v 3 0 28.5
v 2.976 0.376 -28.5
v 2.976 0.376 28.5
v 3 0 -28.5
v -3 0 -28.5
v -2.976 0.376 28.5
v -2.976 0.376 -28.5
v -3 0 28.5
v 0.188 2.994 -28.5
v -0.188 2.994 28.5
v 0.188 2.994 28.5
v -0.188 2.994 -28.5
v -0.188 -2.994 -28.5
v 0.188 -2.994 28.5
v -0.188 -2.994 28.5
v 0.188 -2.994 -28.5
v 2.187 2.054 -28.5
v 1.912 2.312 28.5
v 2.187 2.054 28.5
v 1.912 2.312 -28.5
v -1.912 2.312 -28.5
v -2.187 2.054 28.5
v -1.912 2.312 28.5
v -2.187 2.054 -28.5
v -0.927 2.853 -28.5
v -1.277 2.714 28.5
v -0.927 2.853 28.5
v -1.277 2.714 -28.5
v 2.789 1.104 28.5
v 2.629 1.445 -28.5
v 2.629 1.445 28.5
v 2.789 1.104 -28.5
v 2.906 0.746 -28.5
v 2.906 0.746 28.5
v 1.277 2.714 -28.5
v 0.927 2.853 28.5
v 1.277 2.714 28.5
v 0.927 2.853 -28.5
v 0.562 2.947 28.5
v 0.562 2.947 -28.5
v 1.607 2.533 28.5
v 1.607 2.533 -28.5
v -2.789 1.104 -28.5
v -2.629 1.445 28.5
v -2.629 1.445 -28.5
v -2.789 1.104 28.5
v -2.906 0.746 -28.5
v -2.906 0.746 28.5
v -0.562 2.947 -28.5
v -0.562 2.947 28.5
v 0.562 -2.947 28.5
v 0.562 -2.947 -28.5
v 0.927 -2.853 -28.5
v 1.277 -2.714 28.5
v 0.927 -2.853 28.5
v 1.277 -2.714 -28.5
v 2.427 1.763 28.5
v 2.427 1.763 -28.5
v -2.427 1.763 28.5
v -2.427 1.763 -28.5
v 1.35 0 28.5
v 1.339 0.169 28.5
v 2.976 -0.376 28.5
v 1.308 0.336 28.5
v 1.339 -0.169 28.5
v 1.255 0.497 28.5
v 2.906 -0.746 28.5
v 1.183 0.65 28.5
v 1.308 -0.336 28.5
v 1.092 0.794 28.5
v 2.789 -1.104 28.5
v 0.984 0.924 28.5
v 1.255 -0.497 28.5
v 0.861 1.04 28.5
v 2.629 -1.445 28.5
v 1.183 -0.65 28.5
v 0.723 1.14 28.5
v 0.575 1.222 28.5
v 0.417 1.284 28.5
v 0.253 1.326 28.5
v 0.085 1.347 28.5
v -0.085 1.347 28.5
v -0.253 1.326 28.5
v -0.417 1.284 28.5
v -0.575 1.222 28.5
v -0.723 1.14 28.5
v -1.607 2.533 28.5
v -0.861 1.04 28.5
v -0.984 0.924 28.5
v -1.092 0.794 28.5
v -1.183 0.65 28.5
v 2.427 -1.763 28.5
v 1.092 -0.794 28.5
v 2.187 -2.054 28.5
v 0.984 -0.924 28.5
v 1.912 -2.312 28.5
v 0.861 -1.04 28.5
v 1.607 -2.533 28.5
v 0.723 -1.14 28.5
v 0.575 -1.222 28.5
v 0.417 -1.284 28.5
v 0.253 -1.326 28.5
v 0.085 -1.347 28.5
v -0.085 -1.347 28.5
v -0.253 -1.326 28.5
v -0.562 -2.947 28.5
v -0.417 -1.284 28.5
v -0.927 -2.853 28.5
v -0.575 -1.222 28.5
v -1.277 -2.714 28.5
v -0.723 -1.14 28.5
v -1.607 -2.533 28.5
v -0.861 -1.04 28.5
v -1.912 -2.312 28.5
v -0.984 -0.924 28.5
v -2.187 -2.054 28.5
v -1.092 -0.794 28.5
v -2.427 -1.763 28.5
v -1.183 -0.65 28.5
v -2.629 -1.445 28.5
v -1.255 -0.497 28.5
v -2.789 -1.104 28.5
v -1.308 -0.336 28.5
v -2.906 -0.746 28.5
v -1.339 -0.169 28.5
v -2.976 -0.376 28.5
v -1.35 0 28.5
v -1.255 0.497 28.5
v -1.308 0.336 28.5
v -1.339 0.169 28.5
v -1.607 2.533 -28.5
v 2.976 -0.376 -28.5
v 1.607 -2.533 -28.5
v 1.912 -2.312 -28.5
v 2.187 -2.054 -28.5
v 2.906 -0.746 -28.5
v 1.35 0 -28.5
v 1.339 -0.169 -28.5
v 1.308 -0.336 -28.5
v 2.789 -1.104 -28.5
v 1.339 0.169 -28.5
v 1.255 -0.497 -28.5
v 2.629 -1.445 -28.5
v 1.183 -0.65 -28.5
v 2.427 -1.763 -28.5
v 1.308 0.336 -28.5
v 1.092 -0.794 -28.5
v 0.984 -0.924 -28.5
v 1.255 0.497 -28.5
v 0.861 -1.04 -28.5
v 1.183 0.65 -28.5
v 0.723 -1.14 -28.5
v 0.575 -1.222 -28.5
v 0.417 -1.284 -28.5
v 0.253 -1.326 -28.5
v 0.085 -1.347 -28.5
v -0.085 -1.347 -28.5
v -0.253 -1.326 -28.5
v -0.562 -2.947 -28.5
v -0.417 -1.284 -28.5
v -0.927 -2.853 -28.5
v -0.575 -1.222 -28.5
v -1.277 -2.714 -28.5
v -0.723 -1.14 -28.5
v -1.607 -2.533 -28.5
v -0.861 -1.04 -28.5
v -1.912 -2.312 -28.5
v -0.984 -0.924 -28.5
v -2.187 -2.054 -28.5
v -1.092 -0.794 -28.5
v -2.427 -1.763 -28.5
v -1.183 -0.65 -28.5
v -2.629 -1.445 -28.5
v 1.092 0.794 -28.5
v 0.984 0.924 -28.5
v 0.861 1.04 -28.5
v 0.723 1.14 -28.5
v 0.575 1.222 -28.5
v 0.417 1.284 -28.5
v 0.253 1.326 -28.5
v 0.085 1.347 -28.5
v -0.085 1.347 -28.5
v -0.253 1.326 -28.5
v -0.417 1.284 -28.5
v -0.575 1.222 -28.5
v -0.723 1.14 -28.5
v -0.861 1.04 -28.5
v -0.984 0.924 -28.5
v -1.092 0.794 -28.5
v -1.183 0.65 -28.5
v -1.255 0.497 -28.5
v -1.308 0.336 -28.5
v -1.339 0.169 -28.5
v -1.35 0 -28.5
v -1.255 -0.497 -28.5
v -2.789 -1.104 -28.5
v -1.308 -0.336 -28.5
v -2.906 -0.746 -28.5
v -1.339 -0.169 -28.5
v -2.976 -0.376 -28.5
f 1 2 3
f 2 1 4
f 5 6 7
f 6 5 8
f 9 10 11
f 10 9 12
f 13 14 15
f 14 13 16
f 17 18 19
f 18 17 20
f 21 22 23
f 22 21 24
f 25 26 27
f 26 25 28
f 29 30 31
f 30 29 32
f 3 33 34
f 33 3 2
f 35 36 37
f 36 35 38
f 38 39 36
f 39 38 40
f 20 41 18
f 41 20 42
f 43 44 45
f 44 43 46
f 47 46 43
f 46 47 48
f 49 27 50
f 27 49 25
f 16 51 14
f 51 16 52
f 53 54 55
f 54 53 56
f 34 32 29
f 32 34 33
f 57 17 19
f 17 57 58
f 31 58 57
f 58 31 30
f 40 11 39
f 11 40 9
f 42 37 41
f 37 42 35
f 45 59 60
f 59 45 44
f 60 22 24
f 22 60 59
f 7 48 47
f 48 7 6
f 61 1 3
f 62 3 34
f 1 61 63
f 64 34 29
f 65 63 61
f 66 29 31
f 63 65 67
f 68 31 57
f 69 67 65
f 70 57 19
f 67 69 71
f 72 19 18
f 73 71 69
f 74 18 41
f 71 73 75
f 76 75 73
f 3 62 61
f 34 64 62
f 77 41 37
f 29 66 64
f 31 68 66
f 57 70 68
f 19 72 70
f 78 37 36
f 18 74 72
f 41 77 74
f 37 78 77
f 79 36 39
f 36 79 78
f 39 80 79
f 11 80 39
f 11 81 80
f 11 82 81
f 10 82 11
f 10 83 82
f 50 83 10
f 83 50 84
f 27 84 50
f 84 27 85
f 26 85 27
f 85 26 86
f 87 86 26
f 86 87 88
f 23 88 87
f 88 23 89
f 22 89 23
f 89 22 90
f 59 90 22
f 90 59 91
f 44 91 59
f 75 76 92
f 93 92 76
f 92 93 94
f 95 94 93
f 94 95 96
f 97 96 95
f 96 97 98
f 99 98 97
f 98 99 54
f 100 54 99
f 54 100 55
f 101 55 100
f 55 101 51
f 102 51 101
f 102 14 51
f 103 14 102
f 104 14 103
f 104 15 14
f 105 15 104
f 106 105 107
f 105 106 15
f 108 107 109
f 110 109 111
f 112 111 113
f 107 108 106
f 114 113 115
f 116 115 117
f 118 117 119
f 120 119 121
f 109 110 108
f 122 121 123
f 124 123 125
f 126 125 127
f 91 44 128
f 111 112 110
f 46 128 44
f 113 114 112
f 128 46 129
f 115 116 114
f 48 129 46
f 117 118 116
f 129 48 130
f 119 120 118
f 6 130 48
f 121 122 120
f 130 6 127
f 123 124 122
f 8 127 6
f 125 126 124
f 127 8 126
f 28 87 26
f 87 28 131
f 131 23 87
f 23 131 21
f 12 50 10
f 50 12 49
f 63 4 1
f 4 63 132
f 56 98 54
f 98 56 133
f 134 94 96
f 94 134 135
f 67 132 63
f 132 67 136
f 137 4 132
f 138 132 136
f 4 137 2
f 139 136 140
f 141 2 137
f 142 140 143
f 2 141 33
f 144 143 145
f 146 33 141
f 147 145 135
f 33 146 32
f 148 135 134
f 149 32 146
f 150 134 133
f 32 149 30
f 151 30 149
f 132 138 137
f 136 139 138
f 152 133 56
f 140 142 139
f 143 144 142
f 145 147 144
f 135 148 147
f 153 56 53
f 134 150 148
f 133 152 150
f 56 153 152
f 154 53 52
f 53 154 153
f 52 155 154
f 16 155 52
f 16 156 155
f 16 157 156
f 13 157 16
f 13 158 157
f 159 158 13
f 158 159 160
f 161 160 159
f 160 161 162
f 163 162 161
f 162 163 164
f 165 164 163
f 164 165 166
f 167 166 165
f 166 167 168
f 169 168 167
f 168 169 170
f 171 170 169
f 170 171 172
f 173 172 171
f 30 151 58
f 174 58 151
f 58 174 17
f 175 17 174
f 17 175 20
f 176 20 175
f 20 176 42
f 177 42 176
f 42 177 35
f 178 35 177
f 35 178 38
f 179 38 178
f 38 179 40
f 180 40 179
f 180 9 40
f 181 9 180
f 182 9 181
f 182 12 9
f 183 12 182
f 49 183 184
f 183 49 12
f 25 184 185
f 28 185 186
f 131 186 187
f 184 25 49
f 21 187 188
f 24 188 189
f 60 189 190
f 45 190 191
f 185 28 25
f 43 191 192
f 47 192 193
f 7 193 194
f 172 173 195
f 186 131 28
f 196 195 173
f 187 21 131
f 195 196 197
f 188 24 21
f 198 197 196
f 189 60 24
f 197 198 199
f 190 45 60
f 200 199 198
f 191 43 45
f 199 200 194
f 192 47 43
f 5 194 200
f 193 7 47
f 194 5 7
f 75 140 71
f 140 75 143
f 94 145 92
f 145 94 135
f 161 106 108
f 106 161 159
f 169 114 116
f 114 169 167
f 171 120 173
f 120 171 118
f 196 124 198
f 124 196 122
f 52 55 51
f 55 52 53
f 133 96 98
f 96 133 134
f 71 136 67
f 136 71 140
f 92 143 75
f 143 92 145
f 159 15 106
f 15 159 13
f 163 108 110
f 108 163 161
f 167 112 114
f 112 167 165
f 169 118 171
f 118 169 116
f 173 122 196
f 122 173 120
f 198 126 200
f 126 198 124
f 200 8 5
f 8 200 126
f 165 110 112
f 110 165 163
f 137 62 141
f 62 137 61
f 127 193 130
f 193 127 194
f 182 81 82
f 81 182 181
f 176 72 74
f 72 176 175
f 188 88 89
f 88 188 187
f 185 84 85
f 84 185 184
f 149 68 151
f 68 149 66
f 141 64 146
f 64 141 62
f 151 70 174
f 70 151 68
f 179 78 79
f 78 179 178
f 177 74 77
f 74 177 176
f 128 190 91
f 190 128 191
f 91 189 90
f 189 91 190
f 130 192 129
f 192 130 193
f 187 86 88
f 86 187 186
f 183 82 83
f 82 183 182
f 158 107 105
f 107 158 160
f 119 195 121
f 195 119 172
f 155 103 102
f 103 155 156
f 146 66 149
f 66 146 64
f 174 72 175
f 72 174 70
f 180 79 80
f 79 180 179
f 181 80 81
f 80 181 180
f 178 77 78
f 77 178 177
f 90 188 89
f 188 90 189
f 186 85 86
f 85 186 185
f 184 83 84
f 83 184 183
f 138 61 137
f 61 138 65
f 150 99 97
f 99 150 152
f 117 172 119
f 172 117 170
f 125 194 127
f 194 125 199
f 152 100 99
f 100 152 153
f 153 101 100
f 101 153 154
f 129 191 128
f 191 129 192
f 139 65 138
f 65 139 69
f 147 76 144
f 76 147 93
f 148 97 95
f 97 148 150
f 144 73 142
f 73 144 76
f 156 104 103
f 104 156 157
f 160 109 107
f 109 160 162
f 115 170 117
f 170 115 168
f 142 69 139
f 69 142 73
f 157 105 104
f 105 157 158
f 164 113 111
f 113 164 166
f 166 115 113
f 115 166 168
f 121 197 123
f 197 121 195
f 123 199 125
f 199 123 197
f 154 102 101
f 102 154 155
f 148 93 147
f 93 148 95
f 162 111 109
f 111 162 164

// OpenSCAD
$fn = 50;


difference() {
	union() {
		translate(v = [0, 0, -28.5000000000]) {
			cylinder(h = 57, r = 3.0000000000);
		}
	}
	union() {
		translate(v = [0, 0, -100.0000000000]) {
			cylinder(h = 200, r = 1.3500000000);
		}
	}
}
